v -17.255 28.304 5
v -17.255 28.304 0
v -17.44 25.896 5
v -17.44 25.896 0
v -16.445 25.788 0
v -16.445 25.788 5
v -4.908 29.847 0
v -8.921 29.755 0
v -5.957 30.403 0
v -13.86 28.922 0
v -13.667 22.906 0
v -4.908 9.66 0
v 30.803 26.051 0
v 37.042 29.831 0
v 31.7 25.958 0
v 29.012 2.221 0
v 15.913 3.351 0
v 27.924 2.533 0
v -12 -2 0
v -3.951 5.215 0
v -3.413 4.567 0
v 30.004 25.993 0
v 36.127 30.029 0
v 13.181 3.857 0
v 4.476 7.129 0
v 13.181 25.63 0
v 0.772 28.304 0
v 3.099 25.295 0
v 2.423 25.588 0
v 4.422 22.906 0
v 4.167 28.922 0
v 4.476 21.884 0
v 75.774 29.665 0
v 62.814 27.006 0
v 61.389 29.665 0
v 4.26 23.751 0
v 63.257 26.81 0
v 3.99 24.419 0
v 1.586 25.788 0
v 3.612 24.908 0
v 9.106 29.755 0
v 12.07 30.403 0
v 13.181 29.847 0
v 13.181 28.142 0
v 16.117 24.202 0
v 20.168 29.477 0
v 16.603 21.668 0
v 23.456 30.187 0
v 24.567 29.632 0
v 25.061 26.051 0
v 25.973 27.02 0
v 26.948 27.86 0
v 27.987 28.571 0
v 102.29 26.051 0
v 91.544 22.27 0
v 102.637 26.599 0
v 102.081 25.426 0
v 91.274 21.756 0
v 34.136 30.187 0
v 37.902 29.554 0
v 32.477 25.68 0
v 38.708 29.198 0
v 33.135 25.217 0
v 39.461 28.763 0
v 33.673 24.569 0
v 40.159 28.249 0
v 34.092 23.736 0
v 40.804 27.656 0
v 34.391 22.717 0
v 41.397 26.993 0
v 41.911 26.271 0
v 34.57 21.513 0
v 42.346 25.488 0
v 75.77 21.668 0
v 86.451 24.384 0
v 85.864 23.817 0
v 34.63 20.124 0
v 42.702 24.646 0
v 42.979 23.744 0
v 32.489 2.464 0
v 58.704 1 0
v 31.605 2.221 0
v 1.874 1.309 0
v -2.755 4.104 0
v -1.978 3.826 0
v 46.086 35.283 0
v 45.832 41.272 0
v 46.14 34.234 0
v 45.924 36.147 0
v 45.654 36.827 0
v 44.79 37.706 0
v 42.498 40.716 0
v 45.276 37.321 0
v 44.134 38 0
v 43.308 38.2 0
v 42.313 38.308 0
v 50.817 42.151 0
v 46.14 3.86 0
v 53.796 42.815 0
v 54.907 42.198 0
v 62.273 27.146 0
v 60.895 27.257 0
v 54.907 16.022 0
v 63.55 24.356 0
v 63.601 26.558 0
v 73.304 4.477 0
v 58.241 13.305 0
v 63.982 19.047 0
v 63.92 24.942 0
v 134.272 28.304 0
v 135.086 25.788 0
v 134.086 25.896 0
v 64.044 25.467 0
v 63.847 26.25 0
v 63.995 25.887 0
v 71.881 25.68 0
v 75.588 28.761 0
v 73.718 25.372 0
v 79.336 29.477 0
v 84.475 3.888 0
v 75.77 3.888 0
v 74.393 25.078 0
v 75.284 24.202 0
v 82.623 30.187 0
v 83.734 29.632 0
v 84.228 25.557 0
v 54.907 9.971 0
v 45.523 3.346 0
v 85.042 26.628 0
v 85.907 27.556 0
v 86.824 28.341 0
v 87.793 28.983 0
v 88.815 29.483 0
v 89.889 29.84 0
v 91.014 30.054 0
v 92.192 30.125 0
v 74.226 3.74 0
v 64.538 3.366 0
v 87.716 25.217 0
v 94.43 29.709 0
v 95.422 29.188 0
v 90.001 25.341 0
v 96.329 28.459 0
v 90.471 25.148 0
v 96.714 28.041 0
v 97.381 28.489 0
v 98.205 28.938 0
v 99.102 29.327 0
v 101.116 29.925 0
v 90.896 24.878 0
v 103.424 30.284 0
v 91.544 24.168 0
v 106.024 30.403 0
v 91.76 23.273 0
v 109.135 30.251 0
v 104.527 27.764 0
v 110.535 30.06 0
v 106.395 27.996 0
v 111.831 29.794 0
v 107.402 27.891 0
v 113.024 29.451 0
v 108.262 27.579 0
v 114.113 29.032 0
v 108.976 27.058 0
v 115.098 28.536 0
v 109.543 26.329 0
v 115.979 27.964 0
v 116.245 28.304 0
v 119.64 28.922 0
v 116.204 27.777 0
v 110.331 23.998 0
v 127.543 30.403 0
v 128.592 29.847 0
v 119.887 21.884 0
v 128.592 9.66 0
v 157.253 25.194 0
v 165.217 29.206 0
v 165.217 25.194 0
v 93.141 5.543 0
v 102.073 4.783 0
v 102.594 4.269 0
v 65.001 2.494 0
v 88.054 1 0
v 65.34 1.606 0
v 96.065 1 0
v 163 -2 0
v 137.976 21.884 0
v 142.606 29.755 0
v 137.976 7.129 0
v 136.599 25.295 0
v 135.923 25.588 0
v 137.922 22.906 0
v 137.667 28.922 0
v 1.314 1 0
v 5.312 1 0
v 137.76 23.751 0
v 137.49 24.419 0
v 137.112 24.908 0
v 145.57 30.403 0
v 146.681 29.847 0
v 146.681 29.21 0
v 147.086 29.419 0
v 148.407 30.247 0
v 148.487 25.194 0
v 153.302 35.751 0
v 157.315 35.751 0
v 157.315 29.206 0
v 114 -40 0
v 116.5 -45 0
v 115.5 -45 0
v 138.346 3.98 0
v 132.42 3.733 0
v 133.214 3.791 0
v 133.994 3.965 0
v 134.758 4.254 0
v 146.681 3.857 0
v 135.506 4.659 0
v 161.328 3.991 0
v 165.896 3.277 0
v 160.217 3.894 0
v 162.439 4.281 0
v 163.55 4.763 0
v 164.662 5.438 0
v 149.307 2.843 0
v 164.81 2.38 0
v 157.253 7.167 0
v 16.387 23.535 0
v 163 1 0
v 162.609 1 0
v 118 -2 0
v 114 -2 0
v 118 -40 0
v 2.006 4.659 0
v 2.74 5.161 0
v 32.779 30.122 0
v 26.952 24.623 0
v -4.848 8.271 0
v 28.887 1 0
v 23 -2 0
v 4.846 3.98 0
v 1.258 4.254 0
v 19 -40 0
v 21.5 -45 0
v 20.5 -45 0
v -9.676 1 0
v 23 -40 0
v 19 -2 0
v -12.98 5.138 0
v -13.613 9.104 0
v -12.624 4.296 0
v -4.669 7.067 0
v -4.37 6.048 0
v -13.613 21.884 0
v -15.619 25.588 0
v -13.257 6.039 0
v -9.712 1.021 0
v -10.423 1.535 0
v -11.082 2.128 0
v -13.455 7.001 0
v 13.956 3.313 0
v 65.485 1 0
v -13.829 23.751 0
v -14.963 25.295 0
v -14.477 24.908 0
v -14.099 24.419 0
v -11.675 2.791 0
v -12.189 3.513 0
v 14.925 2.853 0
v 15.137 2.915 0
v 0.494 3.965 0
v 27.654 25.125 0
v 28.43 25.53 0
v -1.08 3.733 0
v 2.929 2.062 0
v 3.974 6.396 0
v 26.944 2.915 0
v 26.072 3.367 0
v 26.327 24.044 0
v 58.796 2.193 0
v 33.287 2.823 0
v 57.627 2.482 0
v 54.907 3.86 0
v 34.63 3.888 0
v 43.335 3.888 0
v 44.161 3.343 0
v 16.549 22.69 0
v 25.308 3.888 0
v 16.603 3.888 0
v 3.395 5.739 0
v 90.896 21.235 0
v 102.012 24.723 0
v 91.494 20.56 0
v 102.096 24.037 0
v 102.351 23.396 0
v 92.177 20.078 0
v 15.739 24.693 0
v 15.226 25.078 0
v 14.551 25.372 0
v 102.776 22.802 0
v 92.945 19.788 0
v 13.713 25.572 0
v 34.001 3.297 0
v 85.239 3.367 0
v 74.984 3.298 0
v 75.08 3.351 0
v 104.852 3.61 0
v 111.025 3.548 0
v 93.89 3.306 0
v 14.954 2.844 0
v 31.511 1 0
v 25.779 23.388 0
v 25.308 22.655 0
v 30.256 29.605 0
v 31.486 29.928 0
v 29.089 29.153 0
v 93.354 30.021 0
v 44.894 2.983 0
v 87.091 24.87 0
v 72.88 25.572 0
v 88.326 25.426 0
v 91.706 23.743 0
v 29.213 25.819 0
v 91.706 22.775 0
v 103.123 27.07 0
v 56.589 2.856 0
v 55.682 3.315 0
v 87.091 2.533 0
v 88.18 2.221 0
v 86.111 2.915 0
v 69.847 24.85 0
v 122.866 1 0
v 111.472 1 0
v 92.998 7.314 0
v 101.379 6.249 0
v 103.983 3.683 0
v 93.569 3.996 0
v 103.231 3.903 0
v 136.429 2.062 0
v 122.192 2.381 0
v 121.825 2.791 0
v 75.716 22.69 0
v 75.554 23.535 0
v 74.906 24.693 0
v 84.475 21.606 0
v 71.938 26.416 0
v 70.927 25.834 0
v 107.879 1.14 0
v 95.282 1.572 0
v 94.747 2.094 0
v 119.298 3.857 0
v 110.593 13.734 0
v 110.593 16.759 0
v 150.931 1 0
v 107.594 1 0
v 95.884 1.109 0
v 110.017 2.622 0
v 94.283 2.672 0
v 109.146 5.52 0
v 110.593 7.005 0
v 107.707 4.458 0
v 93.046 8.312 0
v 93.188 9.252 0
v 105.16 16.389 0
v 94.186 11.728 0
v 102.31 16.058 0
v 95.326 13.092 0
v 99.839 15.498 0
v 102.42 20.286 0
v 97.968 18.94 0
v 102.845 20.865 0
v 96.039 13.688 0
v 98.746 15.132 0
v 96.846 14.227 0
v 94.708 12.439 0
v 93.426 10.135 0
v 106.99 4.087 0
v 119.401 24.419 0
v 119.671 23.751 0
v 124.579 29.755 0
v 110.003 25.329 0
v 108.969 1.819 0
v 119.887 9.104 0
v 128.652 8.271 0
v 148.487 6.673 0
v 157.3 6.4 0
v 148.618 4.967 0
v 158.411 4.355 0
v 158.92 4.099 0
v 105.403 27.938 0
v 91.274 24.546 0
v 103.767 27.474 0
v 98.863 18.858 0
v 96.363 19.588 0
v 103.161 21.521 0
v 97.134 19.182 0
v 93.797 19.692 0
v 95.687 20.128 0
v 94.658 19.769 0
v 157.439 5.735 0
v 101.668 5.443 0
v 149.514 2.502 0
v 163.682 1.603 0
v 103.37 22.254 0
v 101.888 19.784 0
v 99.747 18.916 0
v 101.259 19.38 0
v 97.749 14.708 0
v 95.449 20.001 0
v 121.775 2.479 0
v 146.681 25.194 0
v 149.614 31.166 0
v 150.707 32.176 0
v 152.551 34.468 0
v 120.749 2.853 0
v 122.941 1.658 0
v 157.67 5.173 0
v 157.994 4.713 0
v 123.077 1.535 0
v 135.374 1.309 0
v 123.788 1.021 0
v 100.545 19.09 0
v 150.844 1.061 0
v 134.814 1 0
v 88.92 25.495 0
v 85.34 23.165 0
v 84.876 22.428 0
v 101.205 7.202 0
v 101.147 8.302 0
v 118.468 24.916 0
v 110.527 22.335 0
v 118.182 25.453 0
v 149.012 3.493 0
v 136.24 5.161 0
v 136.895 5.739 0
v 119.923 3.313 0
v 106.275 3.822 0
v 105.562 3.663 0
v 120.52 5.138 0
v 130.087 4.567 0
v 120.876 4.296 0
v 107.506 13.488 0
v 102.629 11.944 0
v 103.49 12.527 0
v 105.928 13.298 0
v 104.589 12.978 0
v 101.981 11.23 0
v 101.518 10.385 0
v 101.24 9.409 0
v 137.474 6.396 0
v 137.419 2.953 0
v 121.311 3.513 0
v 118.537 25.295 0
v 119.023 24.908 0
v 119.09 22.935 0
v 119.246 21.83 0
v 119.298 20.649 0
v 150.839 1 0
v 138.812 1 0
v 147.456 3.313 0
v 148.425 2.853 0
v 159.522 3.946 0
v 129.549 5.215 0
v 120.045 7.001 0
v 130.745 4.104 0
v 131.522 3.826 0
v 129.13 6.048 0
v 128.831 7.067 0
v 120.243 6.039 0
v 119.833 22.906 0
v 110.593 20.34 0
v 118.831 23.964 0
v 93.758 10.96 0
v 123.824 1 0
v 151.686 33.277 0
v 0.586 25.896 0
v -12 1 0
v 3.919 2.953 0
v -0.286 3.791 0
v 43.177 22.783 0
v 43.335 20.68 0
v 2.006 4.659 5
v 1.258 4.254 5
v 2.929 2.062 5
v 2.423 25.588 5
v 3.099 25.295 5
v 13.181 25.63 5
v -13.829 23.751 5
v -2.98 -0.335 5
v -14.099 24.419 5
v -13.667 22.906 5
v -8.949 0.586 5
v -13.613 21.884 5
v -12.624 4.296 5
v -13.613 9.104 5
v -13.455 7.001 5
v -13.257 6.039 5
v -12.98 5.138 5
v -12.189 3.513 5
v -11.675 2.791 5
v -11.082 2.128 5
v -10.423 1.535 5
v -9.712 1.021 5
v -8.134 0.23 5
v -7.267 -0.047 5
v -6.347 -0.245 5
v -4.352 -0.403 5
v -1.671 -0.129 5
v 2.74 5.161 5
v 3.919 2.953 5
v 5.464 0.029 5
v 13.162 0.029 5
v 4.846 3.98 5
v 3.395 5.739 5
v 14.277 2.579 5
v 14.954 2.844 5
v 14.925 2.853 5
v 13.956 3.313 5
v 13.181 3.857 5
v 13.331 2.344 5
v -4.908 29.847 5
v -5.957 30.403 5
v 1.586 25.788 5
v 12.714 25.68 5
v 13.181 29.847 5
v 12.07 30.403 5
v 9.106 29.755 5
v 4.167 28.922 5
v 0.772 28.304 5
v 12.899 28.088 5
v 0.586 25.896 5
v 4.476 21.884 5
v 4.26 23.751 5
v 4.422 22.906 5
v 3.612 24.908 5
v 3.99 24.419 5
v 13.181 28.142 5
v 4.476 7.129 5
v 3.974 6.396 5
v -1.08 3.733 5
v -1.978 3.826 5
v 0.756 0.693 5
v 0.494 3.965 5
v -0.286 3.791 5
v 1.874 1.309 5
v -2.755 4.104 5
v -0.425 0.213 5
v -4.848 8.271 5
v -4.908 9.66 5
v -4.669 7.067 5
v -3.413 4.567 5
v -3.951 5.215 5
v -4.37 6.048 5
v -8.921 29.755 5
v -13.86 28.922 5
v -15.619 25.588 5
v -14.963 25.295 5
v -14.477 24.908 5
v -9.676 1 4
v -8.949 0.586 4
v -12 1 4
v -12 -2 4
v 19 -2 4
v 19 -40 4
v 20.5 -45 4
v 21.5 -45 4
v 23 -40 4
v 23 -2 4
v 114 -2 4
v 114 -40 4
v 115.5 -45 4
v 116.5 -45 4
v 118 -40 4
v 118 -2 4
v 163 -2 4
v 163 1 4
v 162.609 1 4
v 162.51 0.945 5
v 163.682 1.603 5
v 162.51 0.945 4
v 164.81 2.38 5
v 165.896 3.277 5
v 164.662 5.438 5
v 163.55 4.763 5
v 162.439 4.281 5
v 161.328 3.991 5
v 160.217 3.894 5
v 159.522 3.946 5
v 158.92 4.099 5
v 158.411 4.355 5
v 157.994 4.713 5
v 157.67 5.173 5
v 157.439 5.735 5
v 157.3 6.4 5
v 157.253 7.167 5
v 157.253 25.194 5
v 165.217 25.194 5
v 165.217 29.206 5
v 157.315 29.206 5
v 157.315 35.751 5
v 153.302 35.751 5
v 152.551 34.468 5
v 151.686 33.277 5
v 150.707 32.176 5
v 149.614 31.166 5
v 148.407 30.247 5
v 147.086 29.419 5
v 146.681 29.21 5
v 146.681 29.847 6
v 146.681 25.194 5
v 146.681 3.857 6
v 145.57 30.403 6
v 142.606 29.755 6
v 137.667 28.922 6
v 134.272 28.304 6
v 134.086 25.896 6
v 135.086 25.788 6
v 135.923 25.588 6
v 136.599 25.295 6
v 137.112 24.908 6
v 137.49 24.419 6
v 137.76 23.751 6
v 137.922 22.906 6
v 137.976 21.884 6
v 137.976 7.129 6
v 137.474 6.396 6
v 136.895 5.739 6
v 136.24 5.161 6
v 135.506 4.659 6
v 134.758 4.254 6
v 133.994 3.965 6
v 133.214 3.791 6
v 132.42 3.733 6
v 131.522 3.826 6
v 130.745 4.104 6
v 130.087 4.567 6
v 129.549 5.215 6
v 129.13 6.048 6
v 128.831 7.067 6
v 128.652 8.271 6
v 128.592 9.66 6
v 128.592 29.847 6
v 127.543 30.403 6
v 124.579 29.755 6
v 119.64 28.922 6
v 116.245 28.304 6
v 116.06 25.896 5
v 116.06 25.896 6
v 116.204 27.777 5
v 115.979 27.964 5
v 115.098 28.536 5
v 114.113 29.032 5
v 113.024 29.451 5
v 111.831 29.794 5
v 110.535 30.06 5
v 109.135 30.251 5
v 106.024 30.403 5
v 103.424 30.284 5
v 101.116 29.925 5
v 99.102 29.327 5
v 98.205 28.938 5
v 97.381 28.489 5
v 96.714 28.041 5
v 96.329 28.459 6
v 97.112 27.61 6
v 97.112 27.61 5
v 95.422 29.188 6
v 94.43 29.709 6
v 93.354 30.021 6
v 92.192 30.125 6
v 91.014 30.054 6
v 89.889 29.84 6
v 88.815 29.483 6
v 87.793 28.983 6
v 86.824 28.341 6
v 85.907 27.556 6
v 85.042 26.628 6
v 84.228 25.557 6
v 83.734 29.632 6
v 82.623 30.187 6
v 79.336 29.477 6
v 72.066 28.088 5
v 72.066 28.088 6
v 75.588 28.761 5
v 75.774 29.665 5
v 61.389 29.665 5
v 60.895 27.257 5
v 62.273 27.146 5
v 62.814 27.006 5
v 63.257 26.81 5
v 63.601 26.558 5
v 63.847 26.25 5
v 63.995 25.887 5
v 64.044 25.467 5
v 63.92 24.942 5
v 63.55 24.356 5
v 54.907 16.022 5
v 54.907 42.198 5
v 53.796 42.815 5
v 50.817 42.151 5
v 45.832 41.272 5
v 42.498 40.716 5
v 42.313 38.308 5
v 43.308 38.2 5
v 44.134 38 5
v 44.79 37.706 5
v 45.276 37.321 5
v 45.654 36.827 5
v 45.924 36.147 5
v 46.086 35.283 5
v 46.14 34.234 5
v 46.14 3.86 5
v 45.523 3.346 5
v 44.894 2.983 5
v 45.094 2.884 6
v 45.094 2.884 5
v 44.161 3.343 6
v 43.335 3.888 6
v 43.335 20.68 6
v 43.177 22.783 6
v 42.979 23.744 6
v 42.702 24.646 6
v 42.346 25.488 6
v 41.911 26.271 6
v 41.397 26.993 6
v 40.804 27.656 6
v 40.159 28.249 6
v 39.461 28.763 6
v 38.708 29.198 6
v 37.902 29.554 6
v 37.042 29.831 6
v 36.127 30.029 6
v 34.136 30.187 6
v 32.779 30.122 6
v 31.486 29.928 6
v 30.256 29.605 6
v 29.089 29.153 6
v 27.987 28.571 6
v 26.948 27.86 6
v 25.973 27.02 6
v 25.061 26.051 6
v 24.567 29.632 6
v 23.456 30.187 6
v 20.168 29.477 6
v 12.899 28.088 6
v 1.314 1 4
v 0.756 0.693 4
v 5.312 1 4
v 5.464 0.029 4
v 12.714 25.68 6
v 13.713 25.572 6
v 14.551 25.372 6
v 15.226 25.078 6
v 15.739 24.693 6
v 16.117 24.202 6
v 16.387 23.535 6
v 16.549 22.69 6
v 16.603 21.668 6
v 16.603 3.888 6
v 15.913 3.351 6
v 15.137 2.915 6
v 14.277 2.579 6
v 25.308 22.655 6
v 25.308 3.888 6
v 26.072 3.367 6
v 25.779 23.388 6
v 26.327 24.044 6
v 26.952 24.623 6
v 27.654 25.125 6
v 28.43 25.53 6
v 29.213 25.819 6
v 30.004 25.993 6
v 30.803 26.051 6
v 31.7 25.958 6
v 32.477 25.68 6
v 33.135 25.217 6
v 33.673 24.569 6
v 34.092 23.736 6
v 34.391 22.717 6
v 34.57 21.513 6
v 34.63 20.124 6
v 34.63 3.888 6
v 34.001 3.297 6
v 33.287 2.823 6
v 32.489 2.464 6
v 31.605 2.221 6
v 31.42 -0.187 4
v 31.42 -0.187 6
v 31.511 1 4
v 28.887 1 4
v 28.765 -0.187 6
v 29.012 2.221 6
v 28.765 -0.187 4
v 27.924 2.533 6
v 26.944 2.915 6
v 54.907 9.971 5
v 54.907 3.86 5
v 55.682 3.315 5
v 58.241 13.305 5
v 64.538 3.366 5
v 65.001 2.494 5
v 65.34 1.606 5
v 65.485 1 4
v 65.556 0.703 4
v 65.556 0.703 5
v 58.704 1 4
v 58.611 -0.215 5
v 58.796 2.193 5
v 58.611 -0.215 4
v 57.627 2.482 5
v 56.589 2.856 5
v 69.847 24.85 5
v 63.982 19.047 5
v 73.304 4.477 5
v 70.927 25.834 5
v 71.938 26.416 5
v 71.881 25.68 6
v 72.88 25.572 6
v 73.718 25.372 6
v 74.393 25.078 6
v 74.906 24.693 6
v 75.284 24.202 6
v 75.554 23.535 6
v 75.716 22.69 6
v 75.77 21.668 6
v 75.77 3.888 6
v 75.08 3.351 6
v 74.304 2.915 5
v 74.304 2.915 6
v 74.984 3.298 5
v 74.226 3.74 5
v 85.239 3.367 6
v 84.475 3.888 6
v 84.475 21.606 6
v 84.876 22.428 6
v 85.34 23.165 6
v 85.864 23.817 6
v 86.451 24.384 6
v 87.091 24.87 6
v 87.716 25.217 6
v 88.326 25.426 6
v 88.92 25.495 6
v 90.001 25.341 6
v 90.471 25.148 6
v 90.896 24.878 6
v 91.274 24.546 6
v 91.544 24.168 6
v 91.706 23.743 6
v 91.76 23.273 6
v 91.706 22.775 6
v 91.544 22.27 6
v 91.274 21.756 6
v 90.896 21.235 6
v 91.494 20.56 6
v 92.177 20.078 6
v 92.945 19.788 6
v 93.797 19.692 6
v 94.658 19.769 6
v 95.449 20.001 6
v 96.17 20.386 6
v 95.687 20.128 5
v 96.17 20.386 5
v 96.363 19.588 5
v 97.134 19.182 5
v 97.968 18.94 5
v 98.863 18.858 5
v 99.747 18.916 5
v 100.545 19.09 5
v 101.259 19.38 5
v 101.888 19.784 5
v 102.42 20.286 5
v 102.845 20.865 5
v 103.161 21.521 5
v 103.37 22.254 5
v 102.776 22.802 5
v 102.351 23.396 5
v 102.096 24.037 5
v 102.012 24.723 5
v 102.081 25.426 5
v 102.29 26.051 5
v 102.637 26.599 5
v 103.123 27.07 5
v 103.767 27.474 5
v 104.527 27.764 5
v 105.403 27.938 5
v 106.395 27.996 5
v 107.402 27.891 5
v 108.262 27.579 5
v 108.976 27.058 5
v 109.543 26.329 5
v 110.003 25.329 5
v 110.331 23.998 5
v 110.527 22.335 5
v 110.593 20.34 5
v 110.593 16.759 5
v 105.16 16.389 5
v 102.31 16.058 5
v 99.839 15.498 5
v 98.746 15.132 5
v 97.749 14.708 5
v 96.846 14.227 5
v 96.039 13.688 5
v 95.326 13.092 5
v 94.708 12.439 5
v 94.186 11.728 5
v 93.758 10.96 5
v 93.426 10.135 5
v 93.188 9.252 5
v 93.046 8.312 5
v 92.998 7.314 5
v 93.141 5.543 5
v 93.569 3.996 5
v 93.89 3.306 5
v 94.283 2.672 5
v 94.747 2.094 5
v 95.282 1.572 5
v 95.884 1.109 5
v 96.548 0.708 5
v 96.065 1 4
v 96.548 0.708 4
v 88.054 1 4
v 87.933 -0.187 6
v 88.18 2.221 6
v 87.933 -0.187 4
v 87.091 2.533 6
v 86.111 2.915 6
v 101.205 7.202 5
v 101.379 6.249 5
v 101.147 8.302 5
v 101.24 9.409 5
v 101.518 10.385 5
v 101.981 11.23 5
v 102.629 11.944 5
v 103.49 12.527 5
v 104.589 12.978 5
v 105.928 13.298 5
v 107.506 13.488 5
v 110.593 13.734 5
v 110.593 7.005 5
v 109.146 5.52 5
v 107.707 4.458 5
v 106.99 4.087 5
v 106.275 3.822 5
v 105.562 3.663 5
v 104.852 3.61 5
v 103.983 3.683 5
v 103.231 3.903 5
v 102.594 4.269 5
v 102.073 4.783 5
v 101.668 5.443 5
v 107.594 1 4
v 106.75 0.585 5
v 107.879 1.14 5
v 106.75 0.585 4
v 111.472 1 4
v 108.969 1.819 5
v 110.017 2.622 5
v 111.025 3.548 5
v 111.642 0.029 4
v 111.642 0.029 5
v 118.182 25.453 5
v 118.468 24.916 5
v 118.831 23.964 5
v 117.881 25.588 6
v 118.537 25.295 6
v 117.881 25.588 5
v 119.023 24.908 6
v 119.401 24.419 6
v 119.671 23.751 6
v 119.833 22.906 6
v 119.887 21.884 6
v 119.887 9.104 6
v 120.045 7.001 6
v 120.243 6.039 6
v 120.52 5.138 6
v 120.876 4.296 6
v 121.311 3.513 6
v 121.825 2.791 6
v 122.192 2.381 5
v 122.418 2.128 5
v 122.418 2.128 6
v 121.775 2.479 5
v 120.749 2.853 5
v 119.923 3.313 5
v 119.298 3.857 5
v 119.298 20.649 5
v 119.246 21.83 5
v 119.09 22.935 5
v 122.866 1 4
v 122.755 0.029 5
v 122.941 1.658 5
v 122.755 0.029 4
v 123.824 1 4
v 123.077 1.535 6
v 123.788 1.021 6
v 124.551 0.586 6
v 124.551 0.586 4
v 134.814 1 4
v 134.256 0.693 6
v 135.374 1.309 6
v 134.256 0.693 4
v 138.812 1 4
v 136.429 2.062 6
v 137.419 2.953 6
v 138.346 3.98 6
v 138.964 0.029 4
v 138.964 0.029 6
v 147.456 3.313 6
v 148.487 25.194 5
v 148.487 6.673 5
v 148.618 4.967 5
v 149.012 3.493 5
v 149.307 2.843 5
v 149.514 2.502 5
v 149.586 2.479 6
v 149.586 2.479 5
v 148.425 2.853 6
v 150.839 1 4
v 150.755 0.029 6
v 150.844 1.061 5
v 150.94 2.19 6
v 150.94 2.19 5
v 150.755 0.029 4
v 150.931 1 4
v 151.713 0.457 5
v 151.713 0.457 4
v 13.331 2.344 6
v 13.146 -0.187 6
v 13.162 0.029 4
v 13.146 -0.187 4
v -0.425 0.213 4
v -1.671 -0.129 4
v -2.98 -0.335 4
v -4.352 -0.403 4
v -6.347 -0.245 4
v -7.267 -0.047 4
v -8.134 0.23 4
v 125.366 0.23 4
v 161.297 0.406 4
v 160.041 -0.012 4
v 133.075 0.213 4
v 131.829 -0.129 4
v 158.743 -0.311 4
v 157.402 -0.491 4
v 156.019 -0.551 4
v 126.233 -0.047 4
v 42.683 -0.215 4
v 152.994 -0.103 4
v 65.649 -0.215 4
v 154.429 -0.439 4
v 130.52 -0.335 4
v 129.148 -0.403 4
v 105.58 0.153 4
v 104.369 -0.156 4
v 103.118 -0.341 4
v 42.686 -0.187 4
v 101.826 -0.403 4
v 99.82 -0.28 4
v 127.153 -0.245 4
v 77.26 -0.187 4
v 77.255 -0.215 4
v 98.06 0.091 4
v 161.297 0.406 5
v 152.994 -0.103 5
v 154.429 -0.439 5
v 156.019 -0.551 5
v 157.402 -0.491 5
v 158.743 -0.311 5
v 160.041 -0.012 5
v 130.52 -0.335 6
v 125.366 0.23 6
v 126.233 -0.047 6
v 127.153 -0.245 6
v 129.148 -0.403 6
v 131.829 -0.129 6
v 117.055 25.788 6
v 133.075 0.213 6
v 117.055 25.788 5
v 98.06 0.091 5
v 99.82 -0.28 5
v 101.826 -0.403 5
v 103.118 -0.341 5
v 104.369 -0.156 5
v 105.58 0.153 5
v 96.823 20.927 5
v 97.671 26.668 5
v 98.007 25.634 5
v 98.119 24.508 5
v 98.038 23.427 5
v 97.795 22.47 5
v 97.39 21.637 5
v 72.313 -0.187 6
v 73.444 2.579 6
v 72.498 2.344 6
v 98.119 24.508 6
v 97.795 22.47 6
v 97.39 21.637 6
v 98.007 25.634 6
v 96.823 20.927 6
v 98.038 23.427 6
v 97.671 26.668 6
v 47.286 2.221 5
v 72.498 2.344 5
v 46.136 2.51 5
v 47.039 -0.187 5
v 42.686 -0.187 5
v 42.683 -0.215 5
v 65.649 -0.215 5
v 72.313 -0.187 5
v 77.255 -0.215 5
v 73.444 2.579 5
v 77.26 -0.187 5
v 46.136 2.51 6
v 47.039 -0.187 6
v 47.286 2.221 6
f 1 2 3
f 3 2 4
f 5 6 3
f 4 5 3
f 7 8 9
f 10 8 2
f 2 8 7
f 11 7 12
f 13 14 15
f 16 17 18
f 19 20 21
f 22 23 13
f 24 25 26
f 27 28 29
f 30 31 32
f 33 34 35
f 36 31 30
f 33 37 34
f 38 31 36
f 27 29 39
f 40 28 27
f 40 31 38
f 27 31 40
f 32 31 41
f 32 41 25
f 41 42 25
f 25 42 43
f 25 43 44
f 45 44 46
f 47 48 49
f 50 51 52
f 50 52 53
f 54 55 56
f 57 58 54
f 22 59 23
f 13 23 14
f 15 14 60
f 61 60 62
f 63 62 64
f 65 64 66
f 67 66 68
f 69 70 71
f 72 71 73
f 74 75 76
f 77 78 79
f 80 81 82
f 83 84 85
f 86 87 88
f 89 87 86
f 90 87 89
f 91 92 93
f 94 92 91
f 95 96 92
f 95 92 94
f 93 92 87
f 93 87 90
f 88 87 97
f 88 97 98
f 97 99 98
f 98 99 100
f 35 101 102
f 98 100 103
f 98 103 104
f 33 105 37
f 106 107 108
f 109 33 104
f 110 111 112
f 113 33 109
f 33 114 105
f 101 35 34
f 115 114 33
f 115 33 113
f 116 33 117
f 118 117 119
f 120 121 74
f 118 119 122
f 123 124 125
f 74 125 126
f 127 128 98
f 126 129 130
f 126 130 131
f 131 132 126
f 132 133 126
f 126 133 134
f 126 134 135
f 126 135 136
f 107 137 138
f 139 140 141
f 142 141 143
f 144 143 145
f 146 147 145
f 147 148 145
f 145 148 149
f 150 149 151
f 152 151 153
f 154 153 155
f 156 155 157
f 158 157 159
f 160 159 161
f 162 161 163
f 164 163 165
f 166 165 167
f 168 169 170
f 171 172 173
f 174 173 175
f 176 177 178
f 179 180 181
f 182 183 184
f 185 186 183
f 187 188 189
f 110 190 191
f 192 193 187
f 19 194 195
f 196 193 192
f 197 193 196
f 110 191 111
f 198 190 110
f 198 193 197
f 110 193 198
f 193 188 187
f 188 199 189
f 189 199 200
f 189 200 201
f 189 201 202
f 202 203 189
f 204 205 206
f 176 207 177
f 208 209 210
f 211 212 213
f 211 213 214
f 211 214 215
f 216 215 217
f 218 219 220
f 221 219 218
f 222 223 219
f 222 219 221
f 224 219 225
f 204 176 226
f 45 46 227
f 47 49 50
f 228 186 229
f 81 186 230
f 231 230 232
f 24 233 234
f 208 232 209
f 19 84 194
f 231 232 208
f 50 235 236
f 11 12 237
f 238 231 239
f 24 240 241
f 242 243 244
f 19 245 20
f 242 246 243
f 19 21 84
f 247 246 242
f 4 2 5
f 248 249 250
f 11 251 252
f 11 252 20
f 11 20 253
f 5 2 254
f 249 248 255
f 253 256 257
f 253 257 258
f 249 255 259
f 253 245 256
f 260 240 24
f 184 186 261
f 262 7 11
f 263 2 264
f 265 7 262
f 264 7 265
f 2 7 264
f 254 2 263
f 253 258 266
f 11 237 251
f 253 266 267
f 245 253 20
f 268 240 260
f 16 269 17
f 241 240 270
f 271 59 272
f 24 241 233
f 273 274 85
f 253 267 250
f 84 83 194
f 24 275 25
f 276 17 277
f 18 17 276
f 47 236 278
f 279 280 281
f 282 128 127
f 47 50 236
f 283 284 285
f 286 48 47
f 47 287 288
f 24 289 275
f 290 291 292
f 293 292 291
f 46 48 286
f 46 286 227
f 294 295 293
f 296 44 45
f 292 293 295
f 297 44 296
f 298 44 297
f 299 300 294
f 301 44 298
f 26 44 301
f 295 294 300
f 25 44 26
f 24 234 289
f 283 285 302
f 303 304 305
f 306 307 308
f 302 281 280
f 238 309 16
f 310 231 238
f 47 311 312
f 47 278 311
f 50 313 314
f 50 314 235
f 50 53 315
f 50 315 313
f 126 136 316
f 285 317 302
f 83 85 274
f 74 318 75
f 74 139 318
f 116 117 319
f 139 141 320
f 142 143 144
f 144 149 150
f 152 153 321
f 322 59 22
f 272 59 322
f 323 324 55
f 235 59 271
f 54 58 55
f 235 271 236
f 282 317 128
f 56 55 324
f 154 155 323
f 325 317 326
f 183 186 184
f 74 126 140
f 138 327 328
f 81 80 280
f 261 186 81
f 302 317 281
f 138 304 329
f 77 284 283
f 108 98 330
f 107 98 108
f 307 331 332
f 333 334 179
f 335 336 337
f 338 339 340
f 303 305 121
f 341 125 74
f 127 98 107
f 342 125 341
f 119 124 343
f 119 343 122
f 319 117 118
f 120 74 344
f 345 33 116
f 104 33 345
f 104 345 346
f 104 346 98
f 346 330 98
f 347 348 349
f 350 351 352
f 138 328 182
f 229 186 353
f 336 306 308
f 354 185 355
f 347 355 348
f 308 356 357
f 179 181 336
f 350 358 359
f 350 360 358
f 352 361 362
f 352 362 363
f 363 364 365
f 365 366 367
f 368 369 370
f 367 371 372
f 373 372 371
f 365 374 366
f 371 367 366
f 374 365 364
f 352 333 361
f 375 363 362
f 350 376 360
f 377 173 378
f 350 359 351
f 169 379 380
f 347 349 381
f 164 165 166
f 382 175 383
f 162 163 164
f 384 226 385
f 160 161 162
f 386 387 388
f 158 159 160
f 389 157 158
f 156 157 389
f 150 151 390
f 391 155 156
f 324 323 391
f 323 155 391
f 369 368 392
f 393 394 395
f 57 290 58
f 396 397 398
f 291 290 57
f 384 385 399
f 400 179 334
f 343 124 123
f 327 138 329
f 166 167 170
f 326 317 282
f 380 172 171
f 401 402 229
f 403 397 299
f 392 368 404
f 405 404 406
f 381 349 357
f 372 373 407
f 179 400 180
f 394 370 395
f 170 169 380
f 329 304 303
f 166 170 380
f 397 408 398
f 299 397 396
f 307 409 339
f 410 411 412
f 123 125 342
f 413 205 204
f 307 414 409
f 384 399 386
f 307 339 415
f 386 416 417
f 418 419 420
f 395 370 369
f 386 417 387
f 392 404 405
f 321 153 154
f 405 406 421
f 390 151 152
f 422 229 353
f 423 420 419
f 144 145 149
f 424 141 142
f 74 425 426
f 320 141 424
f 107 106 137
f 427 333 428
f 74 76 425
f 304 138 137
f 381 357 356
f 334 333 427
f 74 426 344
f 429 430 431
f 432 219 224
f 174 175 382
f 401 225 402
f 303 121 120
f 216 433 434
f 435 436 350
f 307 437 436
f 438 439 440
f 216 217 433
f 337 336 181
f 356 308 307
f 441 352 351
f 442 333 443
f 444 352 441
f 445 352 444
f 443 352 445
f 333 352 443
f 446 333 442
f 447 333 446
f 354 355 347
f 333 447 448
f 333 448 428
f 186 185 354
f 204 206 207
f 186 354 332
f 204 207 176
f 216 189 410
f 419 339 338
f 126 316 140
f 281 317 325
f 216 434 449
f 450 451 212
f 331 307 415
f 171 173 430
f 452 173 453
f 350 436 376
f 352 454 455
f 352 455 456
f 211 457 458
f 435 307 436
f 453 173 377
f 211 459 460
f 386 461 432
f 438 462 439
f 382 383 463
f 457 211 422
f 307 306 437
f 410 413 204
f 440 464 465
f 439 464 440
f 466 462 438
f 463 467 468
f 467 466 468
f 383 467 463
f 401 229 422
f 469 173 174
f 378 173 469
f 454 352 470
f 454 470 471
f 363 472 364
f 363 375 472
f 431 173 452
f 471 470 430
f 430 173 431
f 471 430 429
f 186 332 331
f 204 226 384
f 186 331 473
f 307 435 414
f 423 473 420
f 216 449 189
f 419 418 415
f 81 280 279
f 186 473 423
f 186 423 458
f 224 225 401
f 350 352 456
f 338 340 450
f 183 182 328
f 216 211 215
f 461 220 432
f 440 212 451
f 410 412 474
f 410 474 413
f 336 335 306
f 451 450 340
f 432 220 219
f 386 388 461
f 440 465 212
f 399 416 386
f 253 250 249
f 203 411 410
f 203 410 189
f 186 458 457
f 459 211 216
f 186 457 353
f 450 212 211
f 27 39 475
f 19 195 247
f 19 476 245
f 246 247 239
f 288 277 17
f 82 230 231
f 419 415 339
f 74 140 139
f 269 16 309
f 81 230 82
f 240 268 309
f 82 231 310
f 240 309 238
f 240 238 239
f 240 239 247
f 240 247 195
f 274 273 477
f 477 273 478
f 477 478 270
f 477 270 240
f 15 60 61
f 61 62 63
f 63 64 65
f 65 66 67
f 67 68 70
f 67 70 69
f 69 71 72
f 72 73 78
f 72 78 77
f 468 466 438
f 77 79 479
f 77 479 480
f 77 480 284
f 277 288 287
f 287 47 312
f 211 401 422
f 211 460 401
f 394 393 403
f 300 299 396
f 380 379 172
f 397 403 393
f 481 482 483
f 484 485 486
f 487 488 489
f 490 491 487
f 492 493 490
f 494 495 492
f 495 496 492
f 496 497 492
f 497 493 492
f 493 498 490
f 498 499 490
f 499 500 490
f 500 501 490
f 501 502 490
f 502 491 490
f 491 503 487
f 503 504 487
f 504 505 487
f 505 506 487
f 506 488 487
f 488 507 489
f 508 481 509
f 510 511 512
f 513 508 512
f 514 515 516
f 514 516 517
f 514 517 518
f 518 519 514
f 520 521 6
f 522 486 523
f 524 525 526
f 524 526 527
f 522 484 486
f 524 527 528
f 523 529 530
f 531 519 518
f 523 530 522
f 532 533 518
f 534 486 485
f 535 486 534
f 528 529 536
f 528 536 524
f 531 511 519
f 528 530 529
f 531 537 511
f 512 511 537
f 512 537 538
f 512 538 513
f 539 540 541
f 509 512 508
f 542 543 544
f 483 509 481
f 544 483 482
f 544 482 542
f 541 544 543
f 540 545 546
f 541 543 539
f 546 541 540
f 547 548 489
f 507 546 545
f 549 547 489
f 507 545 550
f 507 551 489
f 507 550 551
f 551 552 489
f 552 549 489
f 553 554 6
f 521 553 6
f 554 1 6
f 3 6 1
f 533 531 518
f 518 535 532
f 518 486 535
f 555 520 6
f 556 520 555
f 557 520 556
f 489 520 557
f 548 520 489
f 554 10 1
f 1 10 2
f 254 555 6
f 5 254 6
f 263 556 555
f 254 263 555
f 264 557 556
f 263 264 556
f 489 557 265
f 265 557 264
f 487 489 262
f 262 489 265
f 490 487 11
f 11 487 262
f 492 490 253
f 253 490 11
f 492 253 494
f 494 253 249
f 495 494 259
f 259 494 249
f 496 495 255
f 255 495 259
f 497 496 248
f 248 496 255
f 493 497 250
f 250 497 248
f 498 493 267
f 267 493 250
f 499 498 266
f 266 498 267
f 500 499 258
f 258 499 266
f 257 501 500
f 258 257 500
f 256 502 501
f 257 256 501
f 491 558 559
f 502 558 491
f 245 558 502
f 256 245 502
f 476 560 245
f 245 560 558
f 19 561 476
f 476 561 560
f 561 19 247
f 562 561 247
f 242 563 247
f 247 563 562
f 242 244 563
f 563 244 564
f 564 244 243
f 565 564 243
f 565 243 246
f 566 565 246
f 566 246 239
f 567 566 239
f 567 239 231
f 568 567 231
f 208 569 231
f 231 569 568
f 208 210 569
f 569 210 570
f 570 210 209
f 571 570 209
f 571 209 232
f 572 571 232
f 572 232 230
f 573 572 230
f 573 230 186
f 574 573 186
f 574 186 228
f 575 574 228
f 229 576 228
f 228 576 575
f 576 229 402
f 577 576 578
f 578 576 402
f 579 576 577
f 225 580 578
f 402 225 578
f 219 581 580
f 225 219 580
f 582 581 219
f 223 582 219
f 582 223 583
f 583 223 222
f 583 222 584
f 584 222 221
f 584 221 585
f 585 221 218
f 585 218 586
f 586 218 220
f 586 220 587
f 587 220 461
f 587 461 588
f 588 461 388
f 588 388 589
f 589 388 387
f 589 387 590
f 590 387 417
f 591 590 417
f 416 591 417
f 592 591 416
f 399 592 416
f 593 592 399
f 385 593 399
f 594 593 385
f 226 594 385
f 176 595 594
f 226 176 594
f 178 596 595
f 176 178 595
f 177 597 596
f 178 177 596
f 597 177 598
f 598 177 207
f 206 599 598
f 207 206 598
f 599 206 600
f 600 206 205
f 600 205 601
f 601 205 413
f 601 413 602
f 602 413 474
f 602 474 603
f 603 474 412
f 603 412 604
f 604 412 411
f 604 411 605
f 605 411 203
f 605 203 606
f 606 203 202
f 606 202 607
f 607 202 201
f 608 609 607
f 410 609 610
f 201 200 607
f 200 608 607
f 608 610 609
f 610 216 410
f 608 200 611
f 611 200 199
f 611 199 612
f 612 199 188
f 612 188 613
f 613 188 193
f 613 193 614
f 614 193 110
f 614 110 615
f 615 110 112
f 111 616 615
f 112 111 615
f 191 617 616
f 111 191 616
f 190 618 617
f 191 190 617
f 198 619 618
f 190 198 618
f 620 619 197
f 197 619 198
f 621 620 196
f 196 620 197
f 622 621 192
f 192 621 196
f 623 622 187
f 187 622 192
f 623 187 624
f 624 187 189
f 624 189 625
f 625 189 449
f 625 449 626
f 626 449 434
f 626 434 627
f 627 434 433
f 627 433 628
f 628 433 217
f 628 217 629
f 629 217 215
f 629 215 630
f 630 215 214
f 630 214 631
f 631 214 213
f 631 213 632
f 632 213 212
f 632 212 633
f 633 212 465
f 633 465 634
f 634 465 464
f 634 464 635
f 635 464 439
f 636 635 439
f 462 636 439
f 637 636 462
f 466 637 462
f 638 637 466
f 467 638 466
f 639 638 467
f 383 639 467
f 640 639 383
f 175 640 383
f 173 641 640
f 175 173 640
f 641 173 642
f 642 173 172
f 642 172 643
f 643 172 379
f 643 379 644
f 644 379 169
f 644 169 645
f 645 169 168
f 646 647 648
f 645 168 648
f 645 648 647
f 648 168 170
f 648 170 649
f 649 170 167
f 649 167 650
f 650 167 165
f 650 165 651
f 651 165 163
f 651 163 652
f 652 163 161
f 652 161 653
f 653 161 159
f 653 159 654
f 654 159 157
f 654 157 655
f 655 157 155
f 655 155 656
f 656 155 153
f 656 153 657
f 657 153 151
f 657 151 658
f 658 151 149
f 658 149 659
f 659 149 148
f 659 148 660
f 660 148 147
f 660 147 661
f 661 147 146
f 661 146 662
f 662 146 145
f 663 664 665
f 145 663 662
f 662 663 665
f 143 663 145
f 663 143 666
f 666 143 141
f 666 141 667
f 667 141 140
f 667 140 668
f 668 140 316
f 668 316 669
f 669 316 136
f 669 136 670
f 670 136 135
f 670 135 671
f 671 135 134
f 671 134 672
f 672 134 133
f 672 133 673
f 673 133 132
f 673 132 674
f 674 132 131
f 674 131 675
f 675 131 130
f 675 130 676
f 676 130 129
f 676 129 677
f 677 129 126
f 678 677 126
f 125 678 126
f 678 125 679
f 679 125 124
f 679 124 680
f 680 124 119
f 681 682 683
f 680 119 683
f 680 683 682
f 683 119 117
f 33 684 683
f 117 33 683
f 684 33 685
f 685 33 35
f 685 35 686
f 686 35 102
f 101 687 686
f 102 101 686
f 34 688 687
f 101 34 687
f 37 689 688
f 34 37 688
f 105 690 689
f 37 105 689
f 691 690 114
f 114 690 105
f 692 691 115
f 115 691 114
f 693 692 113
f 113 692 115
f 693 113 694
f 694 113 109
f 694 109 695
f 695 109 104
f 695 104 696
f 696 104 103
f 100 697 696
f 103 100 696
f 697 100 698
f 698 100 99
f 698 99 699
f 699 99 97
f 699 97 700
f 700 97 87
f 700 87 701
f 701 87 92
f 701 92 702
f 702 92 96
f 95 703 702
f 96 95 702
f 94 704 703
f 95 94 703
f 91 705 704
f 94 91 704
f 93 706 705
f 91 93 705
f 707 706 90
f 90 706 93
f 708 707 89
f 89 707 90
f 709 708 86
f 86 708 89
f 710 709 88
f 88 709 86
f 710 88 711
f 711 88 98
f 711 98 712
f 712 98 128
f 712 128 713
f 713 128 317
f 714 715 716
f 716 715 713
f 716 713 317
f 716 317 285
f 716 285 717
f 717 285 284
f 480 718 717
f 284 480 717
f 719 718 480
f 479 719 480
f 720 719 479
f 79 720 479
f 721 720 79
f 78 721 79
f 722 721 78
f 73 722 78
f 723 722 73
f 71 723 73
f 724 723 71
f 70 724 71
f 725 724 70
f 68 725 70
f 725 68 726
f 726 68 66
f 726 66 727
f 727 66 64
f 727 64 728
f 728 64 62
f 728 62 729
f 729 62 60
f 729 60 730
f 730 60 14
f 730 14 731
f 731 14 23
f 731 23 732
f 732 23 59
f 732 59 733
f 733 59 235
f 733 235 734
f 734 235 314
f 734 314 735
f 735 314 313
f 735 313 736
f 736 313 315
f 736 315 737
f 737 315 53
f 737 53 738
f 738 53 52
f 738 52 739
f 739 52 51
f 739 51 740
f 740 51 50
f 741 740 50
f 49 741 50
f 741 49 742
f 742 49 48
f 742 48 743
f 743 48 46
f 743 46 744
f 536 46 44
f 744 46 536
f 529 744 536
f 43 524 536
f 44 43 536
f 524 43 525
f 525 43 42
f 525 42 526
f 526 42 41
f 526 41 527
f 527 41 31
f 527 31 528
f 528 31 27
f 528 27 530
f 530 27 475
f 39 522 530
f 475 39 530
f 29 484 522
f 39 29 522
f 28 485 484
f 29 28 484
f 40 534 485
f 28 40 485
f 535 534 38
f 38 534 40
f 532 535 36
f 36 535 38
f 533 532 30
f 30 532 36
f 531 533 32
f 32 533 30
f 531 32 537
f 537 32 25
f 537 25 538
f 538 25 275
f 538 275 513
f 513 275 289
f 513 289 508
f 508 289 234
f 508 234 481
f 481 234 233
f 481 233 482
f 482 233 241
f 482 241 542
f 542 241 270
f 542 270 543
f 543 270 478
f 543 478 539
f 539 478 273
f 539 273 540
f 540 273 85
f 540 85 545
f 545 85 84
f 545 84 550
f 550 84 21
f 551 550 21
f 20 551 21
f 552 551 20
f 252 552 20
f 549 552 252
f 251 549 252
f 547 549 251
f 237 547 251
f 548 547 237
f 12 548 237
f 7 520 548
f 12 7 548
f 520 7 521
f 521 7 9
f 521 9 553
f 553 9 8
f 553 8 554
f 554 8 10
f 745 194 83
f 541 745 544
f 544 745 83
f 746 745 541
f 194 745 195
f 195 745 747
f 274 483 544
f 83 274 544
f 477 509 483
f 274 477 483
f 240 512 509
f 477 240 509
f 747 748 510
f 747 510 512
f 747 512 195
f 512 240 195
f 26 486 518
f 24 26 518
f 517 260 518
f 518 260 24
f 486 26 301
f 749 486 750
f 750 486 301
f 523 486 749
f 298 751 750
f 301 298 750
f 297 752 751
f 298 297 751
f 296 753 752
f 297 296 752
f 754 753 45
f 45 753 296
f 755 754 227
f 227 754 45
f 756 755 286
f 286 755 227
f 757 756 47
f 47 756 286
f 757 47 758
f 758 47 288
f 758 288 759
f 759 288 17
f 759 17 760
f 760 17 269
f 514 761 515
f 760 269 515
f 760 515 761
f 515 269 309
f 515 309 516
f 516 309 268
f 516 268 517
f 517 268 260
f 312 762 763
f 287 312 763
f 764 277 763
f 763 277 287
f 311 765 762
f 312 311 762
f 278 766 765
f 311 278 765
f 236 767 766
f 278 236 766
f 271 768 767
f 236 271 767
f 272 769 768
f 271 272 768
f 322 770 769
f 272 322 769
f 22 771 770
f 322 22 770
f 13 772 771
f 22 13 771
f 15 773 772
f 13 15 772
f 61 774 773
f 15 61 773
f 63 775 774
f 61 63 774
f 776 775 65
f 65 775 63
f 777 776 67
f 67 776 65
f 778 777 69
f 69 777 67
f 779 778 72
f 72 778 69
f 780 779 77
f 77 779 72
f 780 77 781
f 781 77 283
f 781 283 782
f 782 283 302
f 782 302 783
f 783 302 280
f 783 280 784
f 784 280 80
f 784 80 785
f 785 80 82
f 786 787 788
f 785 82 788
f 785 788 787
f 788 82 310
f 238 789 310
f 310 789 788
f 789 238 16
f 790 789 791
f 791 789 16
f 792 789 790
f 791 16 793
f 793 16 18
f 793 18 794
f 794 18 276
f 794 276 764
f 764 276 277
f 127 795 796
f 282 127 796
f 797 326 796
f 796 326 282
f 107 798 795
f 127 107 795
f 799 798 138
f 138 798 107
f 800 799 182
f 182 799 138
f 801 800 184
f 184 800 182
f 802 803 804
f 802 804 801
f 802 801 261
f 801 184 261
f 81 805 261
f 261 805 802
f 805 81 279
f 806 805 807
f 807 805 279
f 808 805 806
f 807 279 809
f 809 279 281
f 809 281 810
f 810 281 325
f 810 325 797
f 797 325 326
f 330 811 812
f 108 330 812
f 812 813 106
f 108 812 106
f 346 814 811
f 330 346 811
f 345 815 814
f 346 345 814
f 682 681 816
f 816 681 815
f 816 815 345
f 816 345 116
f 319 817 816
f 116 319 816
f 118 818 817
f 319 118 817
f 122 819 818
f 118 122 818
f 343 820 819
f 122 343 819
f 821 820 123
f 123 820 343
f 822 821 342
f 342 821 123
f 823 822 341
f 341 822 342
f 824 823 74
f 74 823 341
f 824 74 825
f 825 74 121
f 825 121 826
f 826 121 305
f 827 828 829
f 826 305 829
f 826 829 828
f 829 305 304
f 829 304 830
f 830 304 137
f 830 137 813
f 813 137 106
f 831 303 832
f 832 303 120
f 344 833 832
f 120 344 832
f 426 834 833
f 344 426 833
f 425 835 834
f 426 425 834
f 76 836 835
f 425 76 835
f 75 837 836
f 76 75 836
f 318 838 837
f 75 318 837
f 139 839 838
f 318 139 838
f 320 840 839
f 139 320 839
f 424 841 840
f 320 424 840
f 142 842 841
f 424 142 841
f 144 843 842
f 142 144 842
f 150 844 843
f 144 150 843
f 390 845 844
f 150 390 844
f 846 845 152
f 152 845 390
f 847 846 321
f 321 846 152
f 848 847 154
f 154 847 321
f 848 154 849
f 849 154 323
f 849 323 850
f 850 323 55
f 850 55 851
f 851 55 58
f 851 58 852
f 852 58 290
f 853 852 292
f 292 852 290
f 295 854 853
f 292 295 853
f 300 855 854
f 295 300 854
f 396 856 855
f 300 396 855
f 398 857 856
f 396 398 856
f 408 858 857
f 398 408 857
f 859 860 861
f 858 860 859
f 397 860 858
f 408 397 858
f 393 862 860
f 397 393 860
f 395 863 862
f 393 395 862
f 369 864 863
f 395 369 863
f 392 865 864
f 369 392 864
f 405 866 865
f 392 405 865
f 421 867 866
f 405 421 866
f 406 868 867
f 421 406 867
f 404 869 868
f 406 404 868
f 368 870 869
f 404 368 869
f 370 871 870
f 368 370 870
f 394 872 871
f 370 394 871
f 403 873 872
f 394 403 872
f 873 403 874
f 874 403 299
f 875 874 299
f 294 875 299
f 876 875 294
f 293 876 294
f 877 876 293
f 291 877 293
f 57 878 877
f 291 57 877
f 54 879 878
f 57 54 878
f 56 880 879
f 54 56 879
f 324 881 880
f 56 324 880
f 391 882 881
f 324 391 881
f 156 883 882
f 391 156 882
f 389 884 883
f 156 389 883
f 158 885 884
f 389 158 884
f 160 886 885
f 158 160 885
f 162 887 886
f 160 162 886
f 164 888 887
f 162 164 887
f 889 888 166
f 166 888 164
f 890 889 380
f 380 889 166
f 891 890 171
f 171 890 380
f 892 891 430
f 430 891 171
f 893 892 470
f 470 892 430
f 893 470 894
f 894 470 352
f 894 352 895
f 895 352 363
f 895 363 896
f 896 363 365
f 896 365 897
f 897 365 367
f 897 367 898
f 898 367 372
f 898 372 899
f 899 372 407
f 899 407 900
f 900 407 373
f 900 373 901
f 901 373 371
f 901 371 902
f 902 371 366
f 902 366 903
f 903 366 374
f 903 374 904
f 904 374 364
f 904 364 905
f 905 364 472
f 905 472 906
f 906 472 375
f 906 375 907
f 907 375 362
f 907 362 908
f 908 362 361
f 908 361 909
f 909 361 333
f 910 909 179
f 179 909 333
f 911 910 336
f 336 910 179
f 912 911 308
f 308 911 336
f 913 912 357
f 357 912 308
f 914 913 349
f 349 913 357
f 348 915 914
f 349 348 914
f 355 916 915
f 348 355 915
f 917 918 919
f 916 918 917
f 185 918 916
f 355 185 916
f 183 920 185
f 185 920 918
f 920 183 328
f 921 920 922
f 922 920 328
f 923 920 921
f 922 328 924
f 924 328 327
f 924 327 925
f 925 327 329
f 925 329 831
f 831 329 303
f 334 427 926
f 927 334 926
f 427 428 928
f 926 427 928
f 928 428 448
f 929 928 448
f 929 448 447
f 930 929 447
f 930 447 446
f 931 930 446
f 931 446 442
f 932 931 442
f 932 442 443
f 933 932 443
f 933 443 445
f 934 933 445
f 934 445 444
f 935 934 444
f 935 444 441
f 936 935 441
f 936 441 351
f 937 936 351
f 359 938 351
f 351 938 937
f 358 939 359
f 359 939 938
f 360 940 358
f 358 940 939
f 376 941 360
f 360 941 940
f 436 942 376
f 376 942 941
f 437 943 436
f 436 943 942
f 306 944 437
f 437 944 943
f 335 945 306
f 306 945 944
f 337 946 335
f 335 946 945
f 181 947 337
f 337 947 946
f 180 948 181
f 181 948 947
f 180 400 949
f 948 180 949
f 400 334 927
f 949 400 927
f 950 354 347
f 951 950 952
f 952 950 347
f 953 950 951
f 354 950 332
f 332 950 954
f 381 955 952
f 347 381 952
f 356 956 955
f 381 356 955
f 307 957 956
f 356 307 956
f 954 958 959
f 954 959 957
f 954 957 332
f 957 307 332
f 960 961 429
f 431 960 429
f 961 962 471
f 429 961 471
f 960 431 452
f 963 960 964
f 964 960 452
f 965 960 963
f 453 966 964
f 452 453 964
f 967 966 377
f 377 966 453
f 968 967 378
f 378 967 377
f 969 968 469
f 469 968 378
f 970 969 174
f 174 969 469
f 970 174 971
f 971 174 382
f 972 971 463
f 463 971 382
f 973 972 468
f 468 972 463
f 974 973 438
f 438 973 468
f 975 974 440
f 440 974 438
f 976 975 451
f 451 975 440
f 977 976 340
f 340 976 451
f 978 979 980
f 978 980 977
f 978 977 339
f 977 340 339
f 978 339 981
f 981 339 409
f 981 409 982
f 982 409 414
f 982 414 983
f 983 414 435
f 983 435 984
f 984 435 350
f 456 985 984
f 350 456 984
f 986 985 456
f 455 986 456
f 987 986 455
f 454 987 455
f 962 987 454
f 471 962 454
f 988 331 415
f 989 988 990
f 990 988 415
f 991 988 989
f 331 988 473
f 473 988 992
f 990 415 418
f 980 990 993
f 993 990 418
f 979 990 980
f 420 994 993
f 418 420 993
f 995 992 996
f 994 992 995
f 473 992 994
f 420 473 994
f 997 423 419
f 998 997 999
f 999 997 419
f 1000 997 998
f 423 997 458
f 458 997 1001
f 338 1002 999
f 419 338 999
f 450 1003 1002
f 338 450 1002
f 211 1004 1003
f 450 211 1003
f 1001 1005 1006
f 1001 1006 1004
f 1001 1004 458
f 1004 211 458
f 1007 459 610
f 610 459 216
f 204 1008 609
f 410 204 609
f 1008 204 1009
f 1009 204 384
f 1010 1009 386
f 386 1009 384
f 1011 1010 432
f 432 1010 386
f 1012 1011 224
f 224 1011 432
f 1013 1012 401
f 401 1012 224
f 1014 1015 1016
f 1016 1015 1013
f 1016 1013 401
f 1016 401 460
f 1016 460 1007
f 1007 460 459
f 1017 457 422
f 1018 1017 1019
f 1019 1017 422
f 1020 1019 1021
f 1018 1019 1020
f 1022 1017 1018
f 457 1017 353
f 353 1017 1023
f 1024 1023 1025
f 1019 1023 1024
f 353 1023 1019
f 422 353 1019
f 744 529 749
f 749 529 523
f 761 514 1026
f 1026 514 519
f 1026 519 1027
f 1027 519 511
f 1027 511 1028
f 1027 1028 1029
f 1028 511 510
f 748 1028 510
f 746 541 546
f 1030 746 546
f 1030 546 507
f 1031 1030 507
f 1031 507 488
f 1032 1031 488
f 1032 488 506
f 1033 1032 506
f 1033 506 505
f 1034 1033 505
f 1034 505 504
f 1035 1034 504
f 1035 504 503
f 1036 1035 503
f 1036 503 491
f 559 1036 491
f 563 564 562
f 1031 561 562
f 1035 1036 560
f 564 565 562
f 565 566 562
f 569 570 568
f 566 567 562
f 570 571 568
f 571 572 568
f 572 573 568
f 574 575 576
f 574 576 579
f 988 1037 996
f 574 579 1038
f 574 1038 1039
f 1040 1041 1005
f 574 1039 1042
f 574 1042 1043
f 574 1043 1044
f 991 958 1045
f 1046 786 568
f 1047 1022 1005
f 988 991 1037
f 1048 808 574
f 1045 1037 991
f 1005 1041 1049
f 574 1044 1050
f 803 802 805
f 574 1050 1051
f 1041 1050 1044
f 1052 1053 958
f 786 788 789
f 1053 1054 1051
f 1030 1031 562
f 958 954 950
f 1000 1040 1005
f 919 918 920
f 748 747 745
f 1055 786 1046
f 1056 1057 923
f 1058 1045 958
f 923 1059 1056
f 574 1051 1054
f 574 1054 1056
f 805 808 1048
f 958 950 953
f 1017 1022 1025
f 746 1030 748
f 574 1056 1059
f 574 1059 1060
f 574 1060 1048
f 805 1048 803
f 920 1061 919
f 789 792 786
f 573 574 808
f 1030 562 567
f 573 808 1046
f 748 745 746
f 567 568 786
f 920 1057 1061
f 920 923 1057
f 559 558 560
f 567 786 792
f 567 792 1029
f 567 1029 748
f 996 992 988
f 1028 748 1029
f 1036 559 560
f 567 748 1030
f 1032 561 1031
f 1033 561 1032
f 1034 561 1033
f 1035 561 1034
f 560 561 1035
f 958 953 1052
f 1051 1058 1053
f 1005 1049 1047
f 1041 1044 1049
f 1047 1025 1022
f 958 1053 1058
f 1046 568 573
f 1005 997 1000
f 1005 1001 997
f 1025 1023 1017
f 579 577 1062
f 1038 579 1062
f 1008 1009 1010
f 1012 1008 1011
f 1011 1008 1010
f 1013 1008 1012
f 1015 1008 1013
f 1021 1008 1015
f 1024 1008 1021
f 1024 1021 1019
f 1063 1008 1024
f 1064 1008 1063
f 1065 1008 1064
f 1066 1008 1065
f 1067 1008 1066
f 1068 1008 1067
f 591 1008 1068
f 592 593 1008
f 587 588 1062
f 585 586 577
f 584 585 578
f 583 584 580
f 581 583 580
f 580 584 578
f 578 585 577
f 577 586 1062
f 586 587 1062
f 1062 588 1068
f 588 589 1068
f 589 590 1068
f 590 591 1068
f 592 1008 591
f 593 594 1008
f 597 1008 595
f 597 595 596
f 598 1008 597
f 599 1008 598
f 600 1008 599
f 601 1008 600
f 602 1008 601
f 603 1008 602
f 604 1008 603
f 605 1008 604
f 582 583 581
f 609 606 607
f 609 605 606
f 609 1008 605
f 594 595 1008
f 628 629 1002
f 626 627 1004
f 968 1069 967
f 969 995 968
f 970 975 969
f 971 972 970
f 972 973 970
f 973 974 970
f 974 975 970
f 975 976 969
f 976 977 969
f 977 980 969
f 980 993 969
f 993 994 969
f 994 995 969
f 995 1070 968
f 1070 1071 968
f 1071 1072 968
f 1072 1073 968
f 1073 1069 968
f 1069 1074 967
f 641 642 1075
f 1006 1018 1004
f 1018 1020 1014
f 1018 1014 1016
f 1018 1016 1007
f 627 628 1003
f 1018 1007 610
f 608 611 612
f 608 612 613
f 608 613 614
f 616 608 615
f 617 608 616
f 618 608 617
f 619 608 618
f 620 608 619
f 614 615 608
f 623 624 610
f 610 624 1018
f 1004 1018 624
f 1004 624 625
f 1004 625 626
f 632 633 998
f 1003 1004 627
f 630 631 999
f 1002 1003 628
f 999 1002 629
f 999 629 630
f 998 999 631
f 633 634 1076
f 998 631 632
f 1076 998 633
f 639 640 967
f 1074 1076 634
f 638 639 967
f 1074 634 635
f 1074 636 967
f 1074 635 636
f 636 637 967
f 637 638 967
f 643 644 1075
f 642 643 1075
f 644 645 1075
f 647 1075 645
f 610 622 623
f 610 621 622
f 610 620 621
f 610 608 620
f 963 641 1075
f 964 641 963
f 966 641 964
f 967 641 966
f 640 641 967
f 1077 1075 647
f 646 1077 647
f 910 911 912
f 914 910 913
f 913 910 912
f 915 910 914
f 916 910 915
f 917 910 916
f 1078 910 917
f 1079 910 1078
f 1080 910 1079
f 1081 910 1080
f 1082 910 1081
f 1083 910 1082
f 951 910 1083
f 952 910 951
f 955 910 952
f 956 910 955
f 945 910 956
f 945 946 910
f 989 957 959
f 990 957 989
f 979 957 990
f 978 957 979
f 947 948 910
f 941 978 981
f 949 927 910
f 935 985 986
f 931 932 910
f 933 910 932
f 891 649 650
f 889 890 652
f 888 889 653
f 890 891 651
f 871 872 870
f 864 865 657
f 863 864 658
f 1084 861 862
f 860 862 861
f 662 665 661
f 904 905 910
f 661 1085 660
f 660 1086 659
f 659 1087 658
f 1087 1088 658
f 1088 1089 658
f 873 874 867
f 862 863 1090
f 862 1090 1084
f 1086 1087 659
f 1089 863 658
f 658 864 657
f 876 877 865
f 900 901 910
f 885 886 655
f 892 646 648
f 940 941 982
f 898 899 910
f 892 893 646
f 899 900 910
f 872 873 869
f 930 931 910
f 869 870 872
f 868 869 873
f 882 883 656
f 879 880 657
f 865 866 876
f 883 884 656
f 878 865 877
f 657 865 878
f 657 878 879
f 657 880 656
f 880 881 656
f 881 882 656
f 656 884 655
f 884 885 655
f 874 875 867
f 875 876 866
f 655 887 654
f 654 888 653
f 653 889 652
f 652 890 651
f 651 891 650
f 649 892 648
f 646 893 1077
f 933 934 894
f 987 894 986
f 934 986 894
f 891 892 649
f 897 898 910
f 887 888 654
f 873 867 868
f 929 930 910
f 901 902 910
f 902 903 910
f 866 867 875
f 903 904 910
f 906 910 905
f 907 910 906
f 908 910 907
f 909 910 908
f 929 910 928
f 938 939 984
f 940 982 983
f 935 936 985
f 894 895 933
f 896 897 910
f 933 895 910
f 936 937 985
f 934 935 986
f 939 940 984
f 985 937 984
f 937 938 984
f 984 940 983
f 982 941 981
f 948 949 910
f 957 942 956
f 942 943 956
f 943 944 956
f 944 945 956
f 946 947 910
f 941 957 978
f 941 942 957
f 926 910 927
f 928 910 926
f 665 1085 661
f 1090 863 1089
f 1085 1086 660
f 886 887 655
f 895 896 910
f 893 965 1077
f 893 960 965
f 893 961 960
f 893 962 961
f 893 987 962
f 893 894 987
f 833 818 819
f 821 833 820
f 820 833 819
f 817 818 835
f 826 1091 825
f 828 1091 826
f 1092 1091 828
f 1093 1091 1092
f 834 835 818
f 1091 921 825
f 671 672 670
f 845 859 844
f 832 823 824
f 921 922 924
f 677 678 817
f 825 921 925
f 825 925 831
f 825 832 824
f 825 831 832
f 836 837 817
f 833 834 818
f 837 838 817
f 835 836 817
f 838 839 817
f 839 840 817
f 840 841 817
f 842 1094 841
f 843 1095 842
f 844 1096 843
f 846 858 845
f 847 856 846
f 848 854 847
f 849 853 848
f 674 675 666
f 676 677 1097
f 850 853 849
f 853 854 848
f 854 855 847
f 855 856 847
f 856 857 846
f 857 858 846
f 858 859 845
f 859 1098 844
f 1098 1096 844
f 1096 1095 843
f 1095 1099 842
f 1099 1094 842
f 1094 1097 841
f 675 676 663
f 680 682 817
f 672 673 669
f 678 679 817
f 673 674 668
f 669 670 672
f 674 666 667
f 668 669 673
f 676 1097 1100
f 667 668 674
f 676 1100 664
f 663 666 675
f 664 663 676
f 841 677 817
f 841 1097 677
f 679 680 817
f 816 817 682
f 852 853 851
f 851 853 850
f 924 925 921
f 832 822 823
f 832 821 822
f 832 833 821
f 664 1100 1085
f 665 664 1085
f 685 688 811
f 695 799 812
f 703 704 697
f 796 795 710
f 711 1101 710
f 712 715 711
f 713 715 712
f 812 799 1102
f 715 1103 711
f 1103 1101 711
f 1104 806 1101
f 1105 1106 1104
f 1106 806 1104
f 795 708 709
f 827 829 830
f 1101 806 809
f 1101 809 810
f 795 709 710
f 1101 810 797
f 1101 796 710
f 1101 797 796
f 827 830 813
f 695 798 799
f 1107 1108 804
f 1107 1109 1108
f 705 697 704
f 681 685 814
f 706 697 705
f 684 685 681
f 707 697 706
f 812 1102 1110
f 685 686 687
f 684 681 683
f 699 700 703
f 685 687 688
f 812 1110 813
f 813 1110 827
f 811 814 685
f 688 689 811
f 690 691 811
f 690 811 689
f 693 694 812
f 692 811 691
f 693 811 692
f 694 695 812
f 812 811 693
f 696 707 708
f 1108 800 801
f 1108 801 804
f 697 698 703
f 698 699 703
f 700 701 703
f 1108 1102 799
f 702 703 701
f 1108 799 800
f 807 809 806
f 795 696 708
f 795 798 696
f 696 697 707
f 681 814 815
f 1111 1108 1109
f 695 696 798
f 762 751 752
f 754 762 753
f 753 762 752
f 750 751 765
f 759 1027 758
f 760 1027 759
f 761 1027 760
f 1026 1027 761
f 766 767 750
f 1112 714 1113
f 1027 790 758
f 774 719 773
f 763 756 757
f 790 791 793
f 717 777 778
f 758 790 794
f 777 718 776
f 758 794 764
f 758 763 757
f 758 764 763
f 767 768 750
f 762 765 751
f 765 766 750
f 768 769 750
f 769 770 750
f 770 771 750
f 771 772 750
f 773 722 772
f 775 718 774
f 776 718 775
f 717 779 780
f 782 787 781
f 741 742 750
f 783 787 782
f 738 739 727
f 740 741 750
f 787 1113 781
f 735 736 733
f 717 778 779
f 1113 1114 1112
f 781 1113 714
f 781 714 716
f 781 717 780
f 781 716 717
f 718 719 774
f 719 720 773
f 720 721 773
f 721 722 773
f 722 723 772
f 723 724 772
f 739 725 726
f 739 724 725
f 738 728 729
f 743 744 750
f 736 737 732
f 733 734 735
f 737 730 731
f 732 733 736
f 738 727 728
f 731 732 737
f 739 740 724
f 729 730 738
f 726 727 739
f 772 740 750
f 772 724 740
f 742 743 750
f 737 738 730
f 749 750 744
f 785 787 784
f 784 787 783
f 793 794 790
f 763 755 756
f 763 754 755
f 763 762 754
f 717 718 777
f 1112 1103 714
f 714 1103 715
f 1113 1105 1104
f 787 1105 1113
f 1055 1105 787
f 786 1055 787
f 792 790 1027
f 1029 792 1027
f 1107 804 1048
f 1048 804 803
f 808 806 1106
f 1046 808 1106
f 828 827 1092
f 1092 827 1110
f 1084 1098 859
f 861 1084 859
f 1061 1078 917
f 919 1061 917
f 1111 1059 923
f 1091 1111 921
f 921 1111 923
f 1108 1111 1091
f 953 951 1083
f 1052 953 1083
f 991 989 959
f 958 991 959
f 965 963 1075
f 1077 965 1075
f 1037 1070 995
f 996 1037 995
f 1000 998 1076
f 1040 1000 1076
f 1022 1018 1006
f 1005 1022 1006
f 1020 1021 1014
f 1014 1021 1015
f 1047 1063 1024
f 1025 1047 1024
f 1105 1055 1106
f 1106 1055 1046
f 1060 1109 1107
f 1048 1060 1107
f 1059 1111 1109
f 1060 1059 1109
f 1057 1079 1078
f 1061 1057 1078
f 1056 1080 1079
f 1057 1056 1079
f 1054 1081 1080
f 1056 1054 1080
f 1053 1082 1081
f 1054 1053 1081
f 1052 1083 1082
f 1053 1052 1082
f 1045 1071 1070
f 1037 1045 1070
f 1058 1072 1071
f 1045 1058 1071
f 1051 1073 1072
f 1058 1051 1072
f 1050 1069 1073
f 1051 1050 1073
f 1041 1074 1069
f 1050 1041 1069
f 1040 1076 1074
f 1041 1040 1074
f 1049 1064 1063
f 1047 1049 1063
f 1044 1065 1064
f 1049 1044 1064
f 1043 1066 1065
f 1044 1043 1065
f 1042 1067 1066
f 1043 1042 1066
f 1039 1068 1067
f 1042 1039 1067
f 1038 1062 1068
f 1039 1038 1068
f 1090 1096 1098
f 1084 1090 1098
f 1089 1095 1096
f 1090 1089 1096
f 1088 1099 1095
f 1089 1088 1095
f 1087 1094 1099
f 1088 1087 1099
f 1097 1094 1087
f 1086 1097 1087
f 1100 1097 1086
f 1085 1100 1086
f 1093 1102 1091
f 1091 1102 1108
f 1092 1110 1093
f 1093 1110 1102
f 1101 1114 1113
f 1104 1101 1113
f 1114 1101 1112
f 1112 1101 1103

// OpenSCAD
fudge = 0.1;


include <letters.scad>;

module nail(l,w,h){
	hull(){
	translate([-w/2,5,0]) cube([w,l,h]);
	translate([-0.5,0,0]) cube([1,1,h]);
	}
}

translate([0,15,0]) letter_u(5);
translate([30,15.0,0]) letter_n(6);
translate([60,21.3,0]) letter_k(5);
translate([85,15.0,0]) letter_r(6);
translate([108,15,0]) letter_a(5);
translate([133.5,15.0,0]) letter_u(6);
translate([155,17.6,0]) letter_t(5);

translate([-12,-2,0]) cube([175,3,4]);

translate([21,-45,0]) nail(40,4,4);
translate([116,-45,0]) nail(40,4,4);	
